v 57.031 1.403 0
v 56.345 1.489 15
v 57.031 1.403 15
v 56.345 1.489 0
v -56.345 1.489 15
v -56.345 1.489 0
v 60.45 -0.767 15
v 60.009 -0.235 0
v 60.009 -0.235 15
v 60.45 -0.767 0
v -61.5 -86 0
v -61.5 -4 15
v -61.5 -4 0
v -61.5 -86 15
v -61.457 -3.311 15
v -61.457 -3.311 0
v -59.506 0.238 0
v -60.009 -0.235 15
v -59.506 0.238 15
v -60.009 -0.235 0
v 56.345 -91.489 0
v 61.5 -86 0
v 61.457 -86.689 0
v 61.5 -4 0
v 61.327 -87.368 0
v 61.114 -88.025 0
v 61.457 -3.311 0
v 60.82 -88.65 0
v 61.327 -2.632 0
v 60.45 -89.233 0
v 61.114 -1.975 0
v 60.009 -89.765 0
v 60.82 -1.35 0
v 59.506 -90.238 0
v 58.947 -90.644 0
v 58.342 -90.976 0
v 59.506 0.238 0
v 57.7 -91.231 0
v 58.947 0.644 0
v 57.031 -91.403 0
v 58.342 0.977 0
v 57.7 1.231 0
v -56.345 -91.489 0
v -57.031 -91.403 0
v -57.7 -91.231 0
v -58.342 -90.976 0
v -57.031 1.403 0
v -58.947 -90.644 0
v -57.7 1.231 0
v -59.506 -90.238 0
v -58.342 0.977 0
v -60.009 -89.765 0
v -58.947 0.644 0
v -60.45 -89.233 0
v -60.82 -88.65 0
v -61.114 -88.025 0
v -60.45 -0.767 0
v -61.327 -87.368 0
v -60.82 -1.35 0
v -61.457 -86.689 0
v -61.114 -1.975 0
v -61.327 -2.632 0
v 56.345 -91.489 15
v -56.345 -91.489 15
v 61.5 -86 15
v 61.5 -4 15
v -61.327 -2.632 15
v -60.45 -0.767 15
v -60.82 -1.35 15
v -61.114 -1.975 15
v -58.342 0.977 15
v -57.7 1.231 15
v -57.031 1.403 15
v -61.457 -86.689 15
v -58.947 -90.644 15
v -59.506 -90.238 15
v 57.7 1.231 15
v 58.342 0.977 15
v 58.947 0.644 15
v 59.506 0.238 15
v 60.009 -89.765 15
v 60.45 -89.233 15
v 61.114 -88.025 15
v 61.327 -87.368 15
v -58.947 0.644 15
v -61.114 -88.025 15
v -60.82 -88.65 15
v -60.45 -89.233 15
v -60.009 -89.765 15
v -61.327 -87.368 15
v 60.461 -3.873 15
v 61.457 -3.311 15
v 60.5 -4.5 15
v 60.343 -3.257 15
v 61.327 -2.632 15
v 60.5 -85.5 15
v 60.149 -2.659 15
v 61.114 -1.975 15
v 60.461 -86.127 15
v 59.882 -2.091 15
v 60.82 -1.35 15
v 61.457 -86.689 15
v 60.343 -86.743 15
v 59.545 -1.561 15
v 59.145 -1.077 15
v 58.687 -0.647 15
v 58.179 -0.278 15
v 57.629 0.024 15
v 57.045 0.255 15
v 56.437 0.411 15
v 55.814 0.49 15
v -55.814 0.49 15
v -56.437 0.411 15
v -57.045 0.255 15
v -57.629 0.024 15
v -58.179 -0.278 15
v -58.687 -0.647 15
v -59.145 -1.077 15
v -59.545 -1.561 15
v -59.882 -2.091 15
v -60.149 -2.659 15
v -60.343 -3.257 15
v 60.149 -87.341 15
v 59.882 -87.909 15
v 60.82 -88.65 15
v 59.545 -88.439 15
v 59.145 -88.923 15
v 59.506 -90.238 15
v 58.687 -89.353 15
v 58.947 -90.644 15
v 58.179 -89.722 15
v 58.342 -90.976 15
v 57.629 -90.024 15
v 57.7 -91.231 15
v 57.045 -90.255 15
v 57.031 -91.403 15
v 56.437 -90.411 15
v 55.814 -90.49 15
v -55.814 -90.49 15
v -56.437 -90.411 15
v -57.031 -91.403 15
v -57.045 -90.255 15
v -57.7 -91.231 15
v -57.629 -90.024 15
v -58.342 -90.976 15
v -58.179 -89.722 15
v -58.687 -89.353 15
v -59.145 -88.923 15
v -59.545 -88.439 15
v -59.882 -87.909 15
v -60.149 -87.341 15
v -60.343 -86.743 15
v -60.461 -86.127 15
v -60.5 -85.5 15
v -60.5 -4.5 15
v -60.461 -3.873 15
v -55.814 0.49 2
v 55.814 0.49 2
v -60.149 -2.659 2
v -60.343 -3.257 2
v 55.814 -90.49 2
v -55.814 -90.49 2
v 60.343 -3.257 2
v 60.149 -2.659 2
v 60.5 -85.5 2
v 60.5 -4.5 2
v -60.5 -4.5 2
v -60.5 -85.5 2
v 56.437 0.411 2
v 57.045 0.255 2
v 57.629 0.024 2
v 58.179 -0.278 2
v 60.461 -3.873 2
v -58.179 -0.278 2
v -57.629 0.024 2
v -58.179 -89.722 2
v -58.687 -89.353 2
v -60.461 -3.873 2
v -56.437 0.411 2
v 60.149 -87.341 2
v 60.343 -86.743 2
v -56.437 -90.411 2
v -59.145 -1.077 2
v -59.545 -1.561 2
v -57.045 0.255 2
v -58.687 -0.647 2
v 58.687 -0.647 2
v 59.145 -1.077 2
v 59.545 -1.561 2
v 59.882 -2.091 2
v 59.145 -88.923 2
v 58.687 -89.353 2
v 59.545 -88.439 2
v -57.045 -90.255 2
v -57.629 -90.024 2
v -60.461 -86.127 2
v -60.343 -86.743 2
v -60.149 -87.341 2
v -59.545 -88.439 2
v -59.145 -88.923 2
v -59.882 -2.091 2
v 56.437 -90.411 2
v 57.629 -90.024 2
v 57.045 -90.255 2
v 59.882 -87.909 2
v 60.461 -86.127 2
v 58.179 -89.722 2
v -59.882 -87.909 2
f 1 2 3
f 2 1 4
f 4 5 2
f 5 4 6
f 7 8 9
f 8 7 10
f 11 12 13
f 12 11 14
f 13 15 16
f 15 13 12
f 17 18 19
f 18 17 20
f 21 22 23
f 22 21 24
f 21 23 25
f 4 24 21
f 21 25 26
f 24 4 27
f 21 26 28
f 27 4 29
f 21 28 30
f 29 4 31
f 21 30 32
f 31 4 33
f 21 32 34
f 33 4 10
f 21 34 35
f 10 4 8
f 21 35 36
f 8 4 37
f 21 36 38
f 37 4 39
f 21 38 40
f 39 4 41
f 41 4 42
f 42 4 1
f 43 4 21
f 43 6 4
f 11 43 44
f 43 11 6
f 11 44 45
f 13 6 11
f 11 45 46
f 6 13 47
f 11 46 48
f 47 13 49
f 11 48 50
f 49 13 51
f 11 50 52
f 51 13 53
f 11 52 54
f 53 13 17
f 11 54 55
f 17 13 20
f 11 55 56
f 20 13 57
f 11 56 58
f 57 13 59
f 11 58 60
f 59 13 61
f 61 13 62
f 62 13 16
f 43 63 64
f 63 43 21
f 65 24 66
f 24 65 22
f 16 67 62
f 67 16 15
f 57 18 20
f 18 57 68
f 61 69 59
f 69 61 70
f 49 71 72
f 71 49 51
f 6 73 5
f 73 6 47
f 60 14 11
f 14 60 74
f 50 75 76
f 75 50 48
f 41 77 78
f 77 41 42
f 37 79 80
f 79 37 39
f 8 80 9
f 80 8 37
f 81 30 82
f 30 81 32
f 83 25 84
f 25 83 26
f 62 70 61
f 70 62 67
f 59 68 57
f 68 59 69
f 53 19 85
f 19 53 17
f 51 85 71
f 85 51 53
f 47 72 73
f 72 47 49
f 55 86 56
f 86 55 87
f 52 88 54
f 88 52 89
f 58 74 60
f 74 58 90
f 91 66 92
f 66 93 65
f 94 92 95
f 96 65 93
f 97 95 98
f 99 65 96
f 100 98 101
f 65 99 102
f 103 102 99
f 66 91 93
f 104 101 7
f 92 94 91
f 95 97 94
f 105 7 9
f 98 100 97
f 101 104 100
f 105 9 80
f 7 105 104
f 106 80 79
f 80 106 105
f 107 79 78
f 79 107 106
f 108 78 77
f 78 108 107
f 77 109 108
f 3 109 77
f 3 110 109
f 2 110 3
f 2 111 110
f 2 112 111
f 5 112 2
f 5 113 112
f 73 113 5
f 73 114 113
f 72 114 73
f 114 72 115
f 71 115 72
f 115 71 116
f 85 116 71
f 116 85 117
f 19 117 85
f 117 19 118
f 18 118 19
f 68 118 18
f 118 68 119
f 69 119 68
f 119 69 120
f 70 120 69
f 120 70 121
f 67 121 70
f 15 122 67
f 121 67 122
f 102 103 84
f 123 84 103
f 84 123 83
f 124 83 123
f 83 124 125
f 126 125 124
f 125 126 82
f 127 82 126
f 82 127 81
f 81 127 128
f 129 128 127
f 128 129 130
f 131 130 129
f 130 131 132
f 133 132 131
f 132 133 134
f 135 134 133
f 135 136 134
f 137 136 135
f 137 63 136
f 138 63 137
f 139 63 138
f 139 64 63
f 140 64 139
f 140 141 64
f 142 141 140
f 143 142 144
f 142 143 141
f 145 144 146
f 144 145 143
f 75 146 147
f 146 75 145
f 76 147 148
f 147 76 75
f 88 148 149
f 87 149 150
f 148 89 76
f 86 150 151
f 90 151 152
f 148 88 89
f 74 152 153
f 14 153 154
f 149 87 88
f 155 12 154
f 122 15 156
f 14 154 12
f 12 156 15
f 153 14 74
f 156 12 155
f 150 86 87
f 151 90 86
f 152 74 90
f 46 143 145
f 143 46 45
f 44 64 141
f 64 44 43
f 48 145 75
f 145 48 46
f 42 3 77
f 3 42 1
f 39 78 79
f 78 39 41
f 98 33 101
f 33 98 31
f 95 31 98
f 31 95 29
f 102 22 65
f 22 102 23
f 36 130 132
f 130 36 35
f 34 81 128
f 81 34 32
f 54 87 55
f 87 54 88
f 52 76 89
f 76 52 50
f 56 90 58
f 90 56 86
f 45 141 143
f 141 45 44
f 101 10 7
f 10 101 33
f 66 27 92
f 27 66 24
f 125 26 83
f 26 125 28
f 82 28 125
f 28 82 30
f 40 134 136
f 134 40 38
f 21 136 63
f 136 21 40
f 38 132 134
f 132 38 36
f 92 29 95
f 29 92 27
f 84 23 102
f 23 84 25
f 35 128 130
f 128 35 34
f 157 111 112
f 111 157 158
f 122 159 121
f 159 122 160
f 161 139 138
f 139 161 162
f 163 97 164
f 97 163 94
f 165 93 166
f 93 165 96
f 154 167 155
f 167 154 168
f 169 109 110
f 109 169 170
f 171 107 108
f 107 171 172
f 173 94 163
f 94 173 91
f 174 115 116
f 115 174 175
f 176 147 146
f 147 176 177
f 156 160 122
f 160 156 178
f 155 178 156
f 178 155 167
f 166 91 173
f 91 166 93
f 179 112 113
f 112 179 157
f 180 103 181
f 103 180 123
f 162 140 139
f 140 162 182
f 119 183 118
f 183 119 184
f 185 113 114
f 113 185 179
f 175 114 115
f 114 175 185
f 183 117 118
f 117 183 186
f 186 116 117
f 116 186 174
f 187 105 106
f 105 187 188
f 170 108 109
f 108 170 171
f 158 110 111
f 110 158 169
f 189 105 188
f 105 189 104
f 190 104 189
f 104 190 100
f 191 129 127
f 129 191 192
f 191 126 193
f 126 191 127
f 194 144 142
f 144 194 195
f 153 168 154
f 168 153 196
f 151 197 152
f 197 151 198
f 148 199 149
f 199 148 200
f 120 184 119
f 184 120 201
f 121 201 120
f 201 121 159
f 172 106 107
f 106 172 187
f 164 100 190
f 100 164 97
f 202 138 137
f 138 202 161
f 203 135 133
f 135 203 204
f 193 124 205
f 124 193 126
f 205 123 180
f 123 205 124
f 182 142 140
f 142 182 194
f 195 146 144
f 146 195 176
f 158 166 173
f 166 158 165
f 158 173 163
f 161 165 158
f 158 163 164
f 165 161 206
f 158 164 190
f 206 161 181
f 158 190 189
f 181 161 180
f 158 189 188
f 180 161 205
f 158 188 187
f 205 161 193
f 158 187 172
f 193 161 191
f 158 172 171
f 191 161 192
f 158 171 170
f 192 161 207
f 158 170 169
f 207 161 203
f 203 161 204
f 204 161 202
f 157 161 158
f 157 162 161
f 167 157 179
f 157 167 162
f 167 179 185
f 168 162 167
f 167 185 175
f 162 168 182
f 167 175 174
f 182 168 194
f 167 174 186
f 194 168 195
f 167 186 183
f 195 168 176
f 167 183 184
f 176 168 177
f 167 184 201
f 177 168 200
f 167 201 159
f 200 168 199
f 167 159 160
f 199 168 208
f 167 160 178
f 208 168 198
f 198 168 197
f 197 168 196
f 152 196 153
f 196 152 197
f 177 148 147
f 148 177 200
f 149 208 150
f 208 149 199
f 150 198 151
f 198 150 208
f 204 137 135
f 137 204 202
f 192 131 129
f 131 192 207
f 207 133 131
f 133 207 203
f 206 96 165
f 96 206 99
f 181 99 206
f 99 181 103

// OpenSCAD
$fn = 50;


difference() {
	union() {
		translate(v = [0, -45.0000000000, 0]) {
			hull() {
				translate(v = [-56.0000000000, 41.0000000000, 0]) {
					cylinder(h = 15, r = 5.5000000000);
				}
				translate(v = [56.0000000000, 41.0000000000, 0]) {
					cylinder(h = 15, r = 5.5000000000);
				}
				translate(v = [-56.0000000000, -41.0000000000, 0]) {
					cylinder(h = 15, r = 5.5000000000);
				}
				translate(v = [56.0000000000, -41.0000000000, 0]) {
					cylinder(h = 15, r = 5.5000000000);
				}
			}
		}
	}
	union() {
		translate(v = [0, -45.0000000000, 2]) {
			hull() {
				translate(v = [-55.5000000000, 40.5000000000, 0]) {
					cylinder(h = 30, r = 5);
				}
				translate(v = [55.5000000000, 40.5000000000, 0]) {
					cylinder(h = 30, r = 5);
				}
				translate(v = [-55.5000000000, -40.5000000000, 0]) {
					cylinder(h = 30, r = 5);
				}
				translate(v = [55.5000000000, -40.5000000000, 0]) {
					cylinder(h = 30, r = 5);
				}
			}
		}
	}
}
